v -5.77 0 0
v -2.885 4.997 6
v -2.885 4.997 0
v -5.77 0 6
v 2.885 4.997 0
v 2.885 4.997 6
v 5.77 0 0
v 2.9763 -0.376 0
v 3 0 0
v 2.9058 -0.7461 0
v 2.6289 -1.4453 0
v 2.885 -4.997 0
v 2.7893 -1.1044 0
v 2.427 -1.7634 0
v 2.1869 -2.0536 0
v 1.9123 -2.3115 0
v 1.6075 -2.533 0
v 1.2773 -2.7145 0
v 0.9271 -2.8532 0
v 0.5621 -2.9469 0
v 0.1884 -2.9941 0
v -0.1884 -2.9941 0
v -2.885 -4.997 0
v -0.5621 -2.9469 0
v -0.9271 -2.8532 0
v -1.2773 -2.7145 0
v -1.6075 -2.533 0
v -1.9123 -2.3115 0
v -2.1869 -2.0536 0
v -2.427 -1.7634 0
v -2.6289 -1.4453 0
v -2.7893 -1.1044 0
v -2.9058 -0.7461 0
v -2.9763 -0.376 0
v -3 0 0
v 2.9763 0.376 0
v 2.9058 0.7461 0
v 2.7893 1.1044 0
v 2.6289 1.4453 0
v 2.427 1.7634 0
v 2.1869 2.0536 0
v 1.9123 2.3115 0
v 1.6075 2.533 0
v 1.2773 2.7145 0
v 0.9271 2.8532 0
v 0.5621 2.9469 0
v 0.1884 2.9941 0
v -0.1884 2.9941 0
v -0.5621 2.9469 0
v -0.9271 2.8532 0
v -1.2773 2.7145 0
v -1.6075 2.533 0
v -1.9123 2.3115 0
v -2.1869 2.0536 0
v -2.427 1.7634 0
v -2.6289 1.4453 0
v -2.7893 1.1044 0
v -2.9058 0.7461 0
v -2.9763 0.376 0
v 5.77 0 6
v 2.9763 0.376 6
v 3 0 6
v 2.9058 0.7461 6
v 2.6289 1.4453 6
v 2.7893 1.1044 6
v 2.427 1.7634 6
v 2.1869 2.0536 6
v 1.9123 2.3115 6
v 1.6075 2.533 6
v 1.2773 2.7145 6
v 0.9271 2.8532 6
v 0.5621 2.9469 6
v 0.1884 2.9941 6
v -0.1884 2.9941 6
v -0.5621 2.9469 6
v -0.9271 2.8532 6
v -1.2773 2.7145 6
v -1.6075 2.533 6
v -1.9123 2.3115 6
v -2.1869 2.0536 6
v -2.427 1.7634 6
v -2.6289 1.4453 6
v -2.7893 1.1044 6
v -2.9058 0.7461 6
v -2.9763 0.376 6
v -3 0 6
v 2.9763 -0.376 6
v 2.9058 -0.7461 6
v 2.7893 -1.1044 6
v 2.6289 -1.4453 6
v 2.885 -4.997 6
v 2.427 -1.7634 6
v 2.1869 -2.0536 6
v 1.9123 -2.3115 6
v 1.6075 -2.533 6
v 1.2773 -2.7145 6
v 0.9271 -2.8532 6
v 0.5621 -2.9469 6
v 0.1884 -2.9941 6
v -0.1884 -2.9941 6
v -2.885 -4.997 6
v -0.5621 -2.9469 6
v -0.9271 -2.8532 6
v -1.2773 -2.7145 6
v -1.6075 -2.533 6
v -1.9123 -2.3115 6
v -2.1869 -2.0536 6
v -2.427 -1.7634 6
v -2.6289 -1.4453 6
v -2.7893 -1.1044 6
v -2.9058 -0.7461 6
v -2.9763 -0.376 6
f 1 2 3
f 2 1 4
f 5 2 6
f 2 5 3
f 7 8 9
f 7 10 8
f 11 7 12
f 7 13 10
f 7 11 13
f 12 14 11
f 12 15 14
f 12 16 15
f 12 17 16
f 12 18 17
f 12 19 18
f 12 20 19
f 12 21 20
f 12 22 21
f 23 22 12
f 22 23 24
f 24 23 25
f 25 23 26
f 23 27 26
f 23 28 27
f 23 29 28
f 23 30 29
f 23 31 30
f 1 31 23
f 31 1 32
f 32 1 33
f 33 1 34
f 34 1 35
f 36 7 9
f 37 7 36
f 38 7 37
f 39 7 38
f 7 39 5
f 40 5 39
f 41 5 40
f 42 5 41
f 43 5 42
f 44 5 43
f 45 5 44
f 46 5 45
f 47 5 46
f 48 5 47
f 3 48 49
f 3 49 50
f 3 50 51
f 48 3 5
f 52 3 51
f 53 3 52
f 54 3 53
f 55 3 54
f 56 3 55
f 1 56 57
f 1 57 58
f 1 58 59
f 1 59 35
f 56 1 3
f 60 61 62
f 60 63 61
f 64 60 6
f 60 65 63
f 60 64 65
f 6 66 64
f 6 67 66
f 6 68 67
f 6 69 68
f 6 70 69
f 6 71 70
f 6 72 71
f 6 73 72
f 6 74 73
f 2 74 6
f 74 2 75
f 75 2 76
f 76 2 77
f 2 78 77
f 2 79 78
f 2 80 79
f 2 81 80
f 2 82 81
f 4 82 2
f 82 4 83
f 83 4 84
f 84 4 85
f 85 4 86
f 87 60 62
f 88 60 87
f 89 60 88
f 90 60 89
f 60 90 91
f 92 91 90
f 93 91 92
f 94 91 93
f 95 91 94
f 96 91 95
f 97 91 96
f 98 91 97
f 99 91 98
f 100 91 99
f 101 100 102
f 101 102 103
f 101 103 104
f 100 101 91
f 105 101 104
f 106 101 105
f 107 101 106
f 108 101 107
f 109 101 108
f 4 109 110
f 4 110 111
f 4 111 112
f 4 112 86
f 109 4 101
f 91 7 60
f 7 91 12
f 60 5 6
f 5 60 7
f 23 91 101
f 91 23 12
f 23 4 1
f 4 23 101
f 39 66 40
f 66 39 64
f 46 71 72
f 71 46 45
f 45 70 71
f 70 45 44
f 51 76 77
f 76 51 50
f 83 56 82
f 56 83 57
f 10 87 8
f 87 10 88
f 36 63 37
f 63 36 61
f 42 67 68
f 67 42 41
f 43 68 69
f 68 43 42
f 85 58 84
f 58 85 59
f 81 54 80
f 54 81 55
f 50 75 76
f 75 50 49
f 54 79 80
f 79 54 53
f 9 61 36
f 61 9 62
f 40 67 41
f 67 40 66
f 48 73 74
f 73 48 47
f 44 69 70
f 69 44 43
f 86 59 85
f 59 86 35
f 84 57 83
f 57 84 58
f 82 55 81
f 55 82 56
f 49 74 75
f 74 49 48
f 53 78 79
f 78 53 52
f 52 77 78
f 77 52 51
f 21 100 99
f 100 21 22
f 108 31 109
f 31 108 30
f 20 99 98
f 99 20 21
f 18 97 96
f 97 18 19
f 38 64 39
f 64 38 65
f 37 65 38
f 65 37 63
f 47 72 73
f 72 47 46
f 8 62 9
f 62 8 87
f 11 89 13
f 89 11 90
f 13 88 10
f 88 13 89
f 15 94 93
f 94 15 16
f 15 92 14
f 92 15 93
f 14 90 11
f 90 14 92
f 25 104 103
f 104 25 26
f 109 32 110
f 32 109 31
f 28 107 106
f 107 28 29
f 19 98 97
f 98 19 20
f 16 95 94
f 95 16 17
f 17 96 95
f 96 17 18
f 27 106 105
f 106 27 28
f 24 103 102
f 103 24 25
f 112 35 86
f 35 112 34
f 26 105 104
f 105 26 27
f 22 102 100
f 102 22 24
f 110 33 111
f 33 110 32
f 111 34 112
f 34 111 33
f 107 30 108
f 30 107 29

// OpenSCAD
// Generated by SolidPython 1.1.3 on 2023-03-13 20:55:07
$fn = 50;


difference() {
	union() {
		translate(v = [0, 0, 0]) {
			rotate(a = [0, 0, 0]) {
				translate(v = [0, 0, 0]) {
					rotate(a = [0, 0, 0]) {
						linear_extrude(height = 6) {
							polygon(points = [[5.7700000000, 0.0000000000], [2.8850000000, 4.9969665798], [-2.8850000000, 4.9969665798], [-5.7700000000, 0.0000000000], [-2.8850000000, -4.9969665798], [2.8850000000, -4.9969665798]]);
						}
					}
				}
			}
		}
	}
	union() {
		translate(v = [0, 0, -10]) {
			rotate(a = [0, 0, 0]) {
				cylinder(h = 20, r = 3.0000000000);
			}
		}
	}
}
/***********************************************
*********      SolidPython code:      **********
************************************************
 
from solid import *
import os
import subprocess

import oomB

import opsc_library_gen

mode = "laser"
#mode = "3d_print"

defined_objects = {}

radius_dict = {}
countersunk_dict = {}


def set_mode(m):
    global mode
    mode = m
    radius_dict['M6'] = 6.5/2
    radius_dict['M3'] = 3.3/2
    if mode == "laser":
        radius_dict['M6'] = 6/2
        radius_dict['M3'] = 3/2

    countersunk_dict['M3'] = {}
    countersunk_dict['M3']['little_rad'] = radius_dict['M3']
    countersunk_dict['M3']['big_rad'] = (5.5+0.6)/2
    if mode == "laser":
        countersunk_dict['M3']['big_rad'] = (4.75+0.6)/2
        countersunk_dict['M3']['little_rad'] = (4.75+0.6)/2

    countersunk_dict['M3']['height'] = 1.7


def opsc_make_object(filename, objects, save_type="none",resolution=50, layers = 1, tilediff = 200, mode="laser", overwrite=True):
    if overwrite or not os.path.exists(filename):
        set_mode(mode)
        save_type = save_type.lower()
        os.makedirs(os.path.dirname(filename), exist_ok=True)
        final_object = opsc_get_object(objects, mode = mode)
        # Save the final object to the specified filename    
        scad_render_to_file(final_object, filename, file_header='$fn = %s;' % resolution, include_orig_code=True)
        if save_type == "all":
            saveToAll(filename)
        elif save_type == "dxf":
            saveToDxf(filename)
        if mode == "laser":
            filename_laser = filename.replace(".scad","-flat.scad")
            scad_render_to_file(getLaser(final_object, layers=layers, tilediff=tilediff), filename_laser, file_header='$fn = %s;' % resolution, include_orig_code=True)
            if save_type == "all":
                saveToAll(filename_laser)
            elif save_type == "dxf":
                saveToDxf(filename_laser)


def opsc_get_object(objects, mode = "laser"):
    # Create the solidpython objects only include the positive objects and if they don't have inclusion or their inclusion is either all or mode
    # Initialize an empty list to store the results
    positive_objects = []

    # Iterate over the "objects" list
    for obj in objects:
        # Check if the current object has a "type" key with a value of "positive"
        if obj['type'] == 'positive':
            # Check if the current object has an "inclusion" key and its value matches "mode",
            # or if the current object does not have an "inclusion" key at all
            if not 'inclusion' in obj or obj['inclusion'] == "all" or obj['inclusion'] == mode:
                # Call the "get_opsc_item" function with the current object as an argument
                opsc_item = get_opsc_item(obj)
                # Add the result to the "positive_objects" list
                positive_objects.append(opsc_item)
# Initialize an empty list to store the results
    negative_objects = []

    # Iterate over the "objects" list
    for obj in objects:
        # Check if the current object has a "type" key with a value of "negative"
        if obj['type'] == 'negative':
            # Check if the current object has an "inclusion" key and its value matches "mode",
            # or if the current object does not have an "inclusion" key at all
            if not 'inclusion' in obj or obj['inclusion'] == "all" or obj['inclusion'] == mode:
                # Call the "get_opsc_item" function with the current object as an argument
                opsc_item = get_opsc_item(obj)
                # Add the result to the "negative_objects" list
                negative_objects.append(opsc_item)
    
    #positive_objects = [get_opsc_item(obj) for obj in objects if obj['type'] == 'positive']
    #negative_objects = [get_opsc_item(obj) for obj in objects if obj['type'] == 'negative']
    # Union the positive objects
    positive_object = union()(*positive_objects)
    # Union the negative objects
    negative_object = union()(*negative_objects)
    # Create the final object by subtracting the negative objects from the positive objects
    return difference()(positive_object, negative_object)

def get_opsc_item(params):
    # A dictionary to map radius string values to numerical values
    #radius_dict = {'small': 5, 'medium': 10, 'large': 15}
    # An array of function names for basic shapes
    basic_shapes = ['cube', 'sphere', 'cylinder']
    
    # An array of function names for other shapes
    other_shapes = ['hole', 'slot', 'rounded_rectangle', 'countersunk', 'polyg']
    


    # Convert radius to r if present, and remove radius from the params dictionary
    if 'radius' in params:
        if isinstance(params['radius'], str):
            # Use the radius_dict to map the radius string value to a numerical value
            params['r'] = radius_dict[params['radius']]
        else:
            params['r'] = params['radius']
        del params['radius']
    

    # Check if the object type is a basic shape
    if params['shape'] in basic_shapes:
        # Remove shape and unexpected dictionary values
        allowed_keys = {'size', 'r', 'r1', 'r2', 'd', 'h', 'rw', 'rh', 'dw', 'dh'}
        shape_params = {k: v for k, v in params.items() if k in allowed_keys}

        #params['m'] = "#"
        ###split for adding modifier
        try:
            m = params['m']
            func = globals()[params['shape']]
            return_value = get_opsc_transform(params,func(**shape_params))
            return_value = (return_value).set_modifier(m)
            return return_value
        except KeyError as e:
            return get_opsc_transform(params,globals()[params['shape']](**shape_params))
        
    elif params['shape'] == 'polygon':
        # Remove shape and unexpected dictionary values
        h  = params['height']
        allowed_keys = {'points'}
        shape_params = {k: v for k, v in params.items() if k in allowed_keys}

        # Call the corresponding function for the shape parameter, using ** notation to pass the shape_params dictionary as keyword arguments
        params["rot"] = [0,0,0]        
        try:
            m = params['m']
            func = globals()[params['shape']]
            return_value = get_opsc_transform(params,linear_extrude(h)(globals()[params['shape']](**shape_params)))
            return_value = (return_value).set_modifier(m)
            return return_value
        except KeyError as e:
            return_value = get_opsc_transform(params,linear_extrude(h)(globals()[params['shape']](**shape_params)))
            return_value = (return_value)
            return return_value


    # If the object type is not a basic shape, check if it's a defined object or one of the other shapes
    elif params['shape'] in other_shapes:
        # Call the corresponding function for the shape parameter, passing the params dictionary as an argument
        p2 = copy.deepcopy(params)
        p2["pos"] = [0,0,0]
        return get_opsc_transform(params,globals()[params['shape']](p2))
    
    # If the object is not a basic shape or a defined object, try to import it from a .scad file
    else:
        obj = defined_objects[params['shape']]
        return get_opsc_transform(params,obj)

def get_opsc_transform(params, solid_obj):
    # Rotate the object based on the 'rot' field in the params dictionary, or the 'rotX', 'rotY', and 'rotZ' fields if 'rot' is not present
    rot = params.get('rot', [])
    if rot:
        rotX, rotY, rotZ = rot
    else:
        rotX = params.get('rotX', 0)
        rotY = params.get('rotY', 0)
        rotZ = params.get('rotZ', 0)
    solid_obj = rotate([rotX, rotY, rotZ])(solid_obj)

    # Translate the object based on the 'pos' field in the params dictionary, or the 'x', 'y', and 'z' fields if 'pos' is not present
    pos = params.get('pos', [])
    if pos:
        x, y, z = pos
    else:
        x = params.get('x', 0)
        y = params.get('y', 0)
        z = params.get('z', 0)
    solid_obj = translate([x, y, z])(solid_obj)
    return solid_obj


import random

def opsc_easy_array(type, shape, repeats, pos_start, shift_arr, **kwargs):
    for i in range(0,3):
        repeats.append(1)
        pos_start.append(0)
        shift_arr.append(0)
    return_objects = []

    for x in range(0,repeats[0]):
        for y in range(0,repeats[1]):
            for z in range(0,repeats[2]):
                return_objects.append(opsc_easy(type, shape, pos=[pos_start[0]+x*shift_arr[0],pos_start[1]+y*shift_arr[1],pos_start[2]+z*shift_arr[2]], **kwargs))
    return return_objects                



def opsc_easy(type, shape, **kwargs):
    obj = {
        'type': type,
        'shape': shape
    }
    for param in ['size', 'r', 'r1', 'r2', 'd', 'h', 'rw', 'rh', 'dw', 'dh', 'pos', 'x', 'y', 'z', 'rot', 'rotX', 'rotY', 'rotZ', "w", "inclusion", 'sides', 'height', "m"]:
        if param in kwargs:
            obj[param] = kwargs[param]
    return obj

def hole(params):
    p2 = copy.deepcopy(params)  
    # Check if the radius is a string and replace it with the corresponding value from the dictionary
    if isinstance(p2['r'], str):
        p2['r'] = radius_dict[p2['r']]
    
    # Set the height to 100 if not specified
    if 'h' not in p2:
        p2['h'] = 100
        p2["pos"] = [0,0,-50]
    p2["center"] = True
    # Create the cylinder object
    p2["shape"] = "cylinder"
    p2["type"] = "positive"

    return get_opsc_item(p2)

import copy

def countersunk(params):
    p2 = copy.deepcopy(params)
    counter_rad = p2['r']
    p2['r'] = radius_dict[p2['r']]
    hp = copy.deepcopy(p2)
    hp["type"] = "positive"
    hp["shape"] = "hole"
    del hp["rot"]
    hol = get_opsc_item(hp)
    
    cp = copy.deepcopy(p2)
    cp["h"] = countersunk_dict[counter_rad]["height"]
    cp["r2"] = countersunk_dict[counter_rad]["little_rad"]
    cp["r1"] = countersunk_dict[counter_rad]["big_rad"]
    del cp["r"]
    del cp["rot"]
    cp["type"] = "positive"
    cp["shape"] = "cylinder"
    cp["pos"] = [0,0,0]

    top = get_opsc_item(cp)
    return union()(hol,top)



def slot(params):  
    p2 = copy.deepcopy(params) 
    if isinstance(p2['r'], str):
        p2['r'] = radius_dict[p2['r']]
    p2["type"] = "positive"
    p2["shape"] = "hole"
    del p2["rot"]
    p2["pos"] = [0,0,0]
    left = copy.deepcopy(p2)
    right = copy.deepcopy(p2)
    left["pos"][0] = p2["w"] / 2 - p2["r"] 
    
    right["pos"][0] = -p2["w"] / 2 + p2["r"] 
    pass
    leftObj = get_opsc_item(left)
    rightObj = get_opsc_item(right)
    return hull()(leftObj, rightObj)

def rounded_rectangle(params):   
    p2 = copy.deepcopy(params) 
    p2["h"] = p2["size"][2]
    p2["pos"] = p2.get("pos", [0, 0, 0]) 
    p2["type"] = "positive"
    p2["shape"] = "hole"
    p2["pos"] = [0,0,0]
    
    if 'rot' in p2:
        del p2["rot"]   
    if 'r' not in p2:
        p2["r"] = 5 
    tl = copy.deepcopy(p2)
    tr = copy.deepcopy(p2)
    bl = copy.deepcopy(p2)
    br = copy.deepcopy(p2)
    tl["pos"][0] = -(p2["size"][0] - p2["r"]*2)/2
    tl["pos"][1] = (p2["size"][1] - p2["r"]*2)/2
    tr["pos"][0] = (p2["size"][0] - p2["r"]*2)/2
    tr["pos"][1] = (p2["size"][1] - p2["r"]*2)/2
    bl["pos"][0] = -(p2["size"][0] - p2["r"]*2)/2
    bl["pos"][1] = -(p2["size"][1] - p2["r"]*2)/2
    br["pos"][0] = (p2["size"][0] - p2["r"]*2)/2
    br["pos"][1] = -(p2["size"][1] - p2["r"]*2)/2
    del tl["size"]
    del tr["size"]
    del bl["size"]
    del br["size"]
    tlo = get_opsc_item(tl)
    tro = get_opsc_item(tr)
    blo = get_opsc_item(bl)
    bro = get_opsc_item(br)    
    return hull()(tlo, tro, blo, bro)



def polyg(params):
    p2 = copy.deepcopy(params) 
    p2["type"] = "positive"
    p2["shape"] = "polygon"
    p2["pos"] = [0,0,0]
    sides = p2["sides"]
    radius = p2["r"]    
    angles = [i * 360 / sides for i in range(sides)]
    points = regular_polygon(sides, radius)
    
    p2["points"] = points
    return get_opsc_item(p2)

import math

def regular_polygon(num_sides, radius):
    # Calculate the angle between each side
    angle = 2 * math.pi / num_sides

    # Calculate the points of the polygon
    points = []
    for i in range(num_sides):
        x = radius * math.cos(i * angle)
        y = radius * math.sin(i * angle)
        points.append((x, y))
    return points

def import_scad_object(filename):
    # Import the .scad file and convert it to a solidpython object
    #filename = "parts"
    obj = import_scad(filename)
    return obj.main()



import os
import solid as solidpython

# A dictionary to store the defined objects


def load_scad_objects():
    opsc_library_gen.gen_library(defined_objects)

import random

def test(num_objects):
    objects = []
    for i in range(num_objects):
        # Choose a random shape
        #shape = random.choice(['cube', 'sphere', 'cylinder', 'hole', 'slot', "rounded_rectangle"])
        shape = random.choice(["rounded_rectangle"])

        # Choose a random type
        type = random.choice(['positive', 'negative'])
        
        # Create an empty object dictionary
        obj = {'shape': shape, 'type': type}
        
        # Set shape-specific parameters
        if obj['shape'] in ['cube']:
            obj['size'] =  [random.uniform(5, 15), random.uniform(5, 15), random.uniform(5, 15)]
        if obj['shape'] in ['rounded_rectangle']:
            obj['size'] =  [random.uniform(5, 15), random.uniform(5, 15), random.uniform(5, 15)]
            obj['r'] = random.uniform(0.5, 5)
        elif obj['shape'] == 'sphere':
            obj['r'] = random.uniform(5, 15)
        elif obj['shape'] in ['cylinder', 'hole']:
            obj['r'] = random.uniform(0.5, 5)
            obj['h'] = random.uniform(5, 15)
        elif obj['shape'] == 'slot':
            obj['r'] = random.uniform(0.5, 5)
            obj['h'] = random.uniform(5, 15)
            obj['w'] = random.uniform(5, 15)
        
        # Set a random position and rotation
        obj['pos'] = [random.uniform(-20, 20), random.uniform(-20, 20), random.uniform(-20, 20)]
        obj['rot'] = [random.uniform(-180, 180), random.uniform(-180, 180), random.uniform(-180, 180)]
        
        # Add the object to the list
        objects.append(obj)
    return objects

####### old file saving
def saveToAll(fileIn):
    saveToStl(fileIn)
    saveToDxf(fileIn)
    saveToPng(fileIn)
    saveToSvg(fileIn)

def saveToDxf(fileIn, fileOut="", copy_to_laser=True):
    if fileOut == "":
        fileOut = fileIn.replace(".scad",".dxf")
    saveToFile(fileIn, fileOut)


    
def saveToPng(fileIn, fileOut="",extra="--render"):
    if fileOut == "":
        fileOut = fileIn.replace(".scad",".png")
    saveToFile(fileIn, fileOut)

def saveToStl(fileIn, fileOut=""):
    if fileOut == "":
        fileOut = fileIn.replace(".scad",".stl")
    saveToFile(fileIn, fileOut)
    
def saveToSvg(fileIn, fileOut=""):
    if fileOut == "":
        fileOut = fileIn.replace(".scad",".svg")
    saveToFile(fileIn, fileOut)

def saveToFile(fileIn, fileOut,extra=""):
    #extra = extra + " --colorscheme Tomorrow"

    launchStr = 'openscad -o "' + fileOut + '"' + extra + ' "' + fileIn + '"'
    if ".png" in fileOut:
        launchStr = launchStr + " --render"
    print("            saveToFile launch string: " + launchStr)
    subprocess.run(launchStr)
    x=0

def getLaser(final_object,start=1.5,layers=1,thickness=3,tilediff=200):
        rv= []

        for x in range(layers):
            rv.append(translate([0,x*tilediff,0])(
                    projection()(
                        intersection()(translate([-500,-500,start+x*thickness])(cube(size=[1000,1000,0.1])),
                            final_object
                        )
                    )
            )
            )
            
        return union()(rv)

set_mode("laser")
load_scad_objects() 
 
************************************************/
